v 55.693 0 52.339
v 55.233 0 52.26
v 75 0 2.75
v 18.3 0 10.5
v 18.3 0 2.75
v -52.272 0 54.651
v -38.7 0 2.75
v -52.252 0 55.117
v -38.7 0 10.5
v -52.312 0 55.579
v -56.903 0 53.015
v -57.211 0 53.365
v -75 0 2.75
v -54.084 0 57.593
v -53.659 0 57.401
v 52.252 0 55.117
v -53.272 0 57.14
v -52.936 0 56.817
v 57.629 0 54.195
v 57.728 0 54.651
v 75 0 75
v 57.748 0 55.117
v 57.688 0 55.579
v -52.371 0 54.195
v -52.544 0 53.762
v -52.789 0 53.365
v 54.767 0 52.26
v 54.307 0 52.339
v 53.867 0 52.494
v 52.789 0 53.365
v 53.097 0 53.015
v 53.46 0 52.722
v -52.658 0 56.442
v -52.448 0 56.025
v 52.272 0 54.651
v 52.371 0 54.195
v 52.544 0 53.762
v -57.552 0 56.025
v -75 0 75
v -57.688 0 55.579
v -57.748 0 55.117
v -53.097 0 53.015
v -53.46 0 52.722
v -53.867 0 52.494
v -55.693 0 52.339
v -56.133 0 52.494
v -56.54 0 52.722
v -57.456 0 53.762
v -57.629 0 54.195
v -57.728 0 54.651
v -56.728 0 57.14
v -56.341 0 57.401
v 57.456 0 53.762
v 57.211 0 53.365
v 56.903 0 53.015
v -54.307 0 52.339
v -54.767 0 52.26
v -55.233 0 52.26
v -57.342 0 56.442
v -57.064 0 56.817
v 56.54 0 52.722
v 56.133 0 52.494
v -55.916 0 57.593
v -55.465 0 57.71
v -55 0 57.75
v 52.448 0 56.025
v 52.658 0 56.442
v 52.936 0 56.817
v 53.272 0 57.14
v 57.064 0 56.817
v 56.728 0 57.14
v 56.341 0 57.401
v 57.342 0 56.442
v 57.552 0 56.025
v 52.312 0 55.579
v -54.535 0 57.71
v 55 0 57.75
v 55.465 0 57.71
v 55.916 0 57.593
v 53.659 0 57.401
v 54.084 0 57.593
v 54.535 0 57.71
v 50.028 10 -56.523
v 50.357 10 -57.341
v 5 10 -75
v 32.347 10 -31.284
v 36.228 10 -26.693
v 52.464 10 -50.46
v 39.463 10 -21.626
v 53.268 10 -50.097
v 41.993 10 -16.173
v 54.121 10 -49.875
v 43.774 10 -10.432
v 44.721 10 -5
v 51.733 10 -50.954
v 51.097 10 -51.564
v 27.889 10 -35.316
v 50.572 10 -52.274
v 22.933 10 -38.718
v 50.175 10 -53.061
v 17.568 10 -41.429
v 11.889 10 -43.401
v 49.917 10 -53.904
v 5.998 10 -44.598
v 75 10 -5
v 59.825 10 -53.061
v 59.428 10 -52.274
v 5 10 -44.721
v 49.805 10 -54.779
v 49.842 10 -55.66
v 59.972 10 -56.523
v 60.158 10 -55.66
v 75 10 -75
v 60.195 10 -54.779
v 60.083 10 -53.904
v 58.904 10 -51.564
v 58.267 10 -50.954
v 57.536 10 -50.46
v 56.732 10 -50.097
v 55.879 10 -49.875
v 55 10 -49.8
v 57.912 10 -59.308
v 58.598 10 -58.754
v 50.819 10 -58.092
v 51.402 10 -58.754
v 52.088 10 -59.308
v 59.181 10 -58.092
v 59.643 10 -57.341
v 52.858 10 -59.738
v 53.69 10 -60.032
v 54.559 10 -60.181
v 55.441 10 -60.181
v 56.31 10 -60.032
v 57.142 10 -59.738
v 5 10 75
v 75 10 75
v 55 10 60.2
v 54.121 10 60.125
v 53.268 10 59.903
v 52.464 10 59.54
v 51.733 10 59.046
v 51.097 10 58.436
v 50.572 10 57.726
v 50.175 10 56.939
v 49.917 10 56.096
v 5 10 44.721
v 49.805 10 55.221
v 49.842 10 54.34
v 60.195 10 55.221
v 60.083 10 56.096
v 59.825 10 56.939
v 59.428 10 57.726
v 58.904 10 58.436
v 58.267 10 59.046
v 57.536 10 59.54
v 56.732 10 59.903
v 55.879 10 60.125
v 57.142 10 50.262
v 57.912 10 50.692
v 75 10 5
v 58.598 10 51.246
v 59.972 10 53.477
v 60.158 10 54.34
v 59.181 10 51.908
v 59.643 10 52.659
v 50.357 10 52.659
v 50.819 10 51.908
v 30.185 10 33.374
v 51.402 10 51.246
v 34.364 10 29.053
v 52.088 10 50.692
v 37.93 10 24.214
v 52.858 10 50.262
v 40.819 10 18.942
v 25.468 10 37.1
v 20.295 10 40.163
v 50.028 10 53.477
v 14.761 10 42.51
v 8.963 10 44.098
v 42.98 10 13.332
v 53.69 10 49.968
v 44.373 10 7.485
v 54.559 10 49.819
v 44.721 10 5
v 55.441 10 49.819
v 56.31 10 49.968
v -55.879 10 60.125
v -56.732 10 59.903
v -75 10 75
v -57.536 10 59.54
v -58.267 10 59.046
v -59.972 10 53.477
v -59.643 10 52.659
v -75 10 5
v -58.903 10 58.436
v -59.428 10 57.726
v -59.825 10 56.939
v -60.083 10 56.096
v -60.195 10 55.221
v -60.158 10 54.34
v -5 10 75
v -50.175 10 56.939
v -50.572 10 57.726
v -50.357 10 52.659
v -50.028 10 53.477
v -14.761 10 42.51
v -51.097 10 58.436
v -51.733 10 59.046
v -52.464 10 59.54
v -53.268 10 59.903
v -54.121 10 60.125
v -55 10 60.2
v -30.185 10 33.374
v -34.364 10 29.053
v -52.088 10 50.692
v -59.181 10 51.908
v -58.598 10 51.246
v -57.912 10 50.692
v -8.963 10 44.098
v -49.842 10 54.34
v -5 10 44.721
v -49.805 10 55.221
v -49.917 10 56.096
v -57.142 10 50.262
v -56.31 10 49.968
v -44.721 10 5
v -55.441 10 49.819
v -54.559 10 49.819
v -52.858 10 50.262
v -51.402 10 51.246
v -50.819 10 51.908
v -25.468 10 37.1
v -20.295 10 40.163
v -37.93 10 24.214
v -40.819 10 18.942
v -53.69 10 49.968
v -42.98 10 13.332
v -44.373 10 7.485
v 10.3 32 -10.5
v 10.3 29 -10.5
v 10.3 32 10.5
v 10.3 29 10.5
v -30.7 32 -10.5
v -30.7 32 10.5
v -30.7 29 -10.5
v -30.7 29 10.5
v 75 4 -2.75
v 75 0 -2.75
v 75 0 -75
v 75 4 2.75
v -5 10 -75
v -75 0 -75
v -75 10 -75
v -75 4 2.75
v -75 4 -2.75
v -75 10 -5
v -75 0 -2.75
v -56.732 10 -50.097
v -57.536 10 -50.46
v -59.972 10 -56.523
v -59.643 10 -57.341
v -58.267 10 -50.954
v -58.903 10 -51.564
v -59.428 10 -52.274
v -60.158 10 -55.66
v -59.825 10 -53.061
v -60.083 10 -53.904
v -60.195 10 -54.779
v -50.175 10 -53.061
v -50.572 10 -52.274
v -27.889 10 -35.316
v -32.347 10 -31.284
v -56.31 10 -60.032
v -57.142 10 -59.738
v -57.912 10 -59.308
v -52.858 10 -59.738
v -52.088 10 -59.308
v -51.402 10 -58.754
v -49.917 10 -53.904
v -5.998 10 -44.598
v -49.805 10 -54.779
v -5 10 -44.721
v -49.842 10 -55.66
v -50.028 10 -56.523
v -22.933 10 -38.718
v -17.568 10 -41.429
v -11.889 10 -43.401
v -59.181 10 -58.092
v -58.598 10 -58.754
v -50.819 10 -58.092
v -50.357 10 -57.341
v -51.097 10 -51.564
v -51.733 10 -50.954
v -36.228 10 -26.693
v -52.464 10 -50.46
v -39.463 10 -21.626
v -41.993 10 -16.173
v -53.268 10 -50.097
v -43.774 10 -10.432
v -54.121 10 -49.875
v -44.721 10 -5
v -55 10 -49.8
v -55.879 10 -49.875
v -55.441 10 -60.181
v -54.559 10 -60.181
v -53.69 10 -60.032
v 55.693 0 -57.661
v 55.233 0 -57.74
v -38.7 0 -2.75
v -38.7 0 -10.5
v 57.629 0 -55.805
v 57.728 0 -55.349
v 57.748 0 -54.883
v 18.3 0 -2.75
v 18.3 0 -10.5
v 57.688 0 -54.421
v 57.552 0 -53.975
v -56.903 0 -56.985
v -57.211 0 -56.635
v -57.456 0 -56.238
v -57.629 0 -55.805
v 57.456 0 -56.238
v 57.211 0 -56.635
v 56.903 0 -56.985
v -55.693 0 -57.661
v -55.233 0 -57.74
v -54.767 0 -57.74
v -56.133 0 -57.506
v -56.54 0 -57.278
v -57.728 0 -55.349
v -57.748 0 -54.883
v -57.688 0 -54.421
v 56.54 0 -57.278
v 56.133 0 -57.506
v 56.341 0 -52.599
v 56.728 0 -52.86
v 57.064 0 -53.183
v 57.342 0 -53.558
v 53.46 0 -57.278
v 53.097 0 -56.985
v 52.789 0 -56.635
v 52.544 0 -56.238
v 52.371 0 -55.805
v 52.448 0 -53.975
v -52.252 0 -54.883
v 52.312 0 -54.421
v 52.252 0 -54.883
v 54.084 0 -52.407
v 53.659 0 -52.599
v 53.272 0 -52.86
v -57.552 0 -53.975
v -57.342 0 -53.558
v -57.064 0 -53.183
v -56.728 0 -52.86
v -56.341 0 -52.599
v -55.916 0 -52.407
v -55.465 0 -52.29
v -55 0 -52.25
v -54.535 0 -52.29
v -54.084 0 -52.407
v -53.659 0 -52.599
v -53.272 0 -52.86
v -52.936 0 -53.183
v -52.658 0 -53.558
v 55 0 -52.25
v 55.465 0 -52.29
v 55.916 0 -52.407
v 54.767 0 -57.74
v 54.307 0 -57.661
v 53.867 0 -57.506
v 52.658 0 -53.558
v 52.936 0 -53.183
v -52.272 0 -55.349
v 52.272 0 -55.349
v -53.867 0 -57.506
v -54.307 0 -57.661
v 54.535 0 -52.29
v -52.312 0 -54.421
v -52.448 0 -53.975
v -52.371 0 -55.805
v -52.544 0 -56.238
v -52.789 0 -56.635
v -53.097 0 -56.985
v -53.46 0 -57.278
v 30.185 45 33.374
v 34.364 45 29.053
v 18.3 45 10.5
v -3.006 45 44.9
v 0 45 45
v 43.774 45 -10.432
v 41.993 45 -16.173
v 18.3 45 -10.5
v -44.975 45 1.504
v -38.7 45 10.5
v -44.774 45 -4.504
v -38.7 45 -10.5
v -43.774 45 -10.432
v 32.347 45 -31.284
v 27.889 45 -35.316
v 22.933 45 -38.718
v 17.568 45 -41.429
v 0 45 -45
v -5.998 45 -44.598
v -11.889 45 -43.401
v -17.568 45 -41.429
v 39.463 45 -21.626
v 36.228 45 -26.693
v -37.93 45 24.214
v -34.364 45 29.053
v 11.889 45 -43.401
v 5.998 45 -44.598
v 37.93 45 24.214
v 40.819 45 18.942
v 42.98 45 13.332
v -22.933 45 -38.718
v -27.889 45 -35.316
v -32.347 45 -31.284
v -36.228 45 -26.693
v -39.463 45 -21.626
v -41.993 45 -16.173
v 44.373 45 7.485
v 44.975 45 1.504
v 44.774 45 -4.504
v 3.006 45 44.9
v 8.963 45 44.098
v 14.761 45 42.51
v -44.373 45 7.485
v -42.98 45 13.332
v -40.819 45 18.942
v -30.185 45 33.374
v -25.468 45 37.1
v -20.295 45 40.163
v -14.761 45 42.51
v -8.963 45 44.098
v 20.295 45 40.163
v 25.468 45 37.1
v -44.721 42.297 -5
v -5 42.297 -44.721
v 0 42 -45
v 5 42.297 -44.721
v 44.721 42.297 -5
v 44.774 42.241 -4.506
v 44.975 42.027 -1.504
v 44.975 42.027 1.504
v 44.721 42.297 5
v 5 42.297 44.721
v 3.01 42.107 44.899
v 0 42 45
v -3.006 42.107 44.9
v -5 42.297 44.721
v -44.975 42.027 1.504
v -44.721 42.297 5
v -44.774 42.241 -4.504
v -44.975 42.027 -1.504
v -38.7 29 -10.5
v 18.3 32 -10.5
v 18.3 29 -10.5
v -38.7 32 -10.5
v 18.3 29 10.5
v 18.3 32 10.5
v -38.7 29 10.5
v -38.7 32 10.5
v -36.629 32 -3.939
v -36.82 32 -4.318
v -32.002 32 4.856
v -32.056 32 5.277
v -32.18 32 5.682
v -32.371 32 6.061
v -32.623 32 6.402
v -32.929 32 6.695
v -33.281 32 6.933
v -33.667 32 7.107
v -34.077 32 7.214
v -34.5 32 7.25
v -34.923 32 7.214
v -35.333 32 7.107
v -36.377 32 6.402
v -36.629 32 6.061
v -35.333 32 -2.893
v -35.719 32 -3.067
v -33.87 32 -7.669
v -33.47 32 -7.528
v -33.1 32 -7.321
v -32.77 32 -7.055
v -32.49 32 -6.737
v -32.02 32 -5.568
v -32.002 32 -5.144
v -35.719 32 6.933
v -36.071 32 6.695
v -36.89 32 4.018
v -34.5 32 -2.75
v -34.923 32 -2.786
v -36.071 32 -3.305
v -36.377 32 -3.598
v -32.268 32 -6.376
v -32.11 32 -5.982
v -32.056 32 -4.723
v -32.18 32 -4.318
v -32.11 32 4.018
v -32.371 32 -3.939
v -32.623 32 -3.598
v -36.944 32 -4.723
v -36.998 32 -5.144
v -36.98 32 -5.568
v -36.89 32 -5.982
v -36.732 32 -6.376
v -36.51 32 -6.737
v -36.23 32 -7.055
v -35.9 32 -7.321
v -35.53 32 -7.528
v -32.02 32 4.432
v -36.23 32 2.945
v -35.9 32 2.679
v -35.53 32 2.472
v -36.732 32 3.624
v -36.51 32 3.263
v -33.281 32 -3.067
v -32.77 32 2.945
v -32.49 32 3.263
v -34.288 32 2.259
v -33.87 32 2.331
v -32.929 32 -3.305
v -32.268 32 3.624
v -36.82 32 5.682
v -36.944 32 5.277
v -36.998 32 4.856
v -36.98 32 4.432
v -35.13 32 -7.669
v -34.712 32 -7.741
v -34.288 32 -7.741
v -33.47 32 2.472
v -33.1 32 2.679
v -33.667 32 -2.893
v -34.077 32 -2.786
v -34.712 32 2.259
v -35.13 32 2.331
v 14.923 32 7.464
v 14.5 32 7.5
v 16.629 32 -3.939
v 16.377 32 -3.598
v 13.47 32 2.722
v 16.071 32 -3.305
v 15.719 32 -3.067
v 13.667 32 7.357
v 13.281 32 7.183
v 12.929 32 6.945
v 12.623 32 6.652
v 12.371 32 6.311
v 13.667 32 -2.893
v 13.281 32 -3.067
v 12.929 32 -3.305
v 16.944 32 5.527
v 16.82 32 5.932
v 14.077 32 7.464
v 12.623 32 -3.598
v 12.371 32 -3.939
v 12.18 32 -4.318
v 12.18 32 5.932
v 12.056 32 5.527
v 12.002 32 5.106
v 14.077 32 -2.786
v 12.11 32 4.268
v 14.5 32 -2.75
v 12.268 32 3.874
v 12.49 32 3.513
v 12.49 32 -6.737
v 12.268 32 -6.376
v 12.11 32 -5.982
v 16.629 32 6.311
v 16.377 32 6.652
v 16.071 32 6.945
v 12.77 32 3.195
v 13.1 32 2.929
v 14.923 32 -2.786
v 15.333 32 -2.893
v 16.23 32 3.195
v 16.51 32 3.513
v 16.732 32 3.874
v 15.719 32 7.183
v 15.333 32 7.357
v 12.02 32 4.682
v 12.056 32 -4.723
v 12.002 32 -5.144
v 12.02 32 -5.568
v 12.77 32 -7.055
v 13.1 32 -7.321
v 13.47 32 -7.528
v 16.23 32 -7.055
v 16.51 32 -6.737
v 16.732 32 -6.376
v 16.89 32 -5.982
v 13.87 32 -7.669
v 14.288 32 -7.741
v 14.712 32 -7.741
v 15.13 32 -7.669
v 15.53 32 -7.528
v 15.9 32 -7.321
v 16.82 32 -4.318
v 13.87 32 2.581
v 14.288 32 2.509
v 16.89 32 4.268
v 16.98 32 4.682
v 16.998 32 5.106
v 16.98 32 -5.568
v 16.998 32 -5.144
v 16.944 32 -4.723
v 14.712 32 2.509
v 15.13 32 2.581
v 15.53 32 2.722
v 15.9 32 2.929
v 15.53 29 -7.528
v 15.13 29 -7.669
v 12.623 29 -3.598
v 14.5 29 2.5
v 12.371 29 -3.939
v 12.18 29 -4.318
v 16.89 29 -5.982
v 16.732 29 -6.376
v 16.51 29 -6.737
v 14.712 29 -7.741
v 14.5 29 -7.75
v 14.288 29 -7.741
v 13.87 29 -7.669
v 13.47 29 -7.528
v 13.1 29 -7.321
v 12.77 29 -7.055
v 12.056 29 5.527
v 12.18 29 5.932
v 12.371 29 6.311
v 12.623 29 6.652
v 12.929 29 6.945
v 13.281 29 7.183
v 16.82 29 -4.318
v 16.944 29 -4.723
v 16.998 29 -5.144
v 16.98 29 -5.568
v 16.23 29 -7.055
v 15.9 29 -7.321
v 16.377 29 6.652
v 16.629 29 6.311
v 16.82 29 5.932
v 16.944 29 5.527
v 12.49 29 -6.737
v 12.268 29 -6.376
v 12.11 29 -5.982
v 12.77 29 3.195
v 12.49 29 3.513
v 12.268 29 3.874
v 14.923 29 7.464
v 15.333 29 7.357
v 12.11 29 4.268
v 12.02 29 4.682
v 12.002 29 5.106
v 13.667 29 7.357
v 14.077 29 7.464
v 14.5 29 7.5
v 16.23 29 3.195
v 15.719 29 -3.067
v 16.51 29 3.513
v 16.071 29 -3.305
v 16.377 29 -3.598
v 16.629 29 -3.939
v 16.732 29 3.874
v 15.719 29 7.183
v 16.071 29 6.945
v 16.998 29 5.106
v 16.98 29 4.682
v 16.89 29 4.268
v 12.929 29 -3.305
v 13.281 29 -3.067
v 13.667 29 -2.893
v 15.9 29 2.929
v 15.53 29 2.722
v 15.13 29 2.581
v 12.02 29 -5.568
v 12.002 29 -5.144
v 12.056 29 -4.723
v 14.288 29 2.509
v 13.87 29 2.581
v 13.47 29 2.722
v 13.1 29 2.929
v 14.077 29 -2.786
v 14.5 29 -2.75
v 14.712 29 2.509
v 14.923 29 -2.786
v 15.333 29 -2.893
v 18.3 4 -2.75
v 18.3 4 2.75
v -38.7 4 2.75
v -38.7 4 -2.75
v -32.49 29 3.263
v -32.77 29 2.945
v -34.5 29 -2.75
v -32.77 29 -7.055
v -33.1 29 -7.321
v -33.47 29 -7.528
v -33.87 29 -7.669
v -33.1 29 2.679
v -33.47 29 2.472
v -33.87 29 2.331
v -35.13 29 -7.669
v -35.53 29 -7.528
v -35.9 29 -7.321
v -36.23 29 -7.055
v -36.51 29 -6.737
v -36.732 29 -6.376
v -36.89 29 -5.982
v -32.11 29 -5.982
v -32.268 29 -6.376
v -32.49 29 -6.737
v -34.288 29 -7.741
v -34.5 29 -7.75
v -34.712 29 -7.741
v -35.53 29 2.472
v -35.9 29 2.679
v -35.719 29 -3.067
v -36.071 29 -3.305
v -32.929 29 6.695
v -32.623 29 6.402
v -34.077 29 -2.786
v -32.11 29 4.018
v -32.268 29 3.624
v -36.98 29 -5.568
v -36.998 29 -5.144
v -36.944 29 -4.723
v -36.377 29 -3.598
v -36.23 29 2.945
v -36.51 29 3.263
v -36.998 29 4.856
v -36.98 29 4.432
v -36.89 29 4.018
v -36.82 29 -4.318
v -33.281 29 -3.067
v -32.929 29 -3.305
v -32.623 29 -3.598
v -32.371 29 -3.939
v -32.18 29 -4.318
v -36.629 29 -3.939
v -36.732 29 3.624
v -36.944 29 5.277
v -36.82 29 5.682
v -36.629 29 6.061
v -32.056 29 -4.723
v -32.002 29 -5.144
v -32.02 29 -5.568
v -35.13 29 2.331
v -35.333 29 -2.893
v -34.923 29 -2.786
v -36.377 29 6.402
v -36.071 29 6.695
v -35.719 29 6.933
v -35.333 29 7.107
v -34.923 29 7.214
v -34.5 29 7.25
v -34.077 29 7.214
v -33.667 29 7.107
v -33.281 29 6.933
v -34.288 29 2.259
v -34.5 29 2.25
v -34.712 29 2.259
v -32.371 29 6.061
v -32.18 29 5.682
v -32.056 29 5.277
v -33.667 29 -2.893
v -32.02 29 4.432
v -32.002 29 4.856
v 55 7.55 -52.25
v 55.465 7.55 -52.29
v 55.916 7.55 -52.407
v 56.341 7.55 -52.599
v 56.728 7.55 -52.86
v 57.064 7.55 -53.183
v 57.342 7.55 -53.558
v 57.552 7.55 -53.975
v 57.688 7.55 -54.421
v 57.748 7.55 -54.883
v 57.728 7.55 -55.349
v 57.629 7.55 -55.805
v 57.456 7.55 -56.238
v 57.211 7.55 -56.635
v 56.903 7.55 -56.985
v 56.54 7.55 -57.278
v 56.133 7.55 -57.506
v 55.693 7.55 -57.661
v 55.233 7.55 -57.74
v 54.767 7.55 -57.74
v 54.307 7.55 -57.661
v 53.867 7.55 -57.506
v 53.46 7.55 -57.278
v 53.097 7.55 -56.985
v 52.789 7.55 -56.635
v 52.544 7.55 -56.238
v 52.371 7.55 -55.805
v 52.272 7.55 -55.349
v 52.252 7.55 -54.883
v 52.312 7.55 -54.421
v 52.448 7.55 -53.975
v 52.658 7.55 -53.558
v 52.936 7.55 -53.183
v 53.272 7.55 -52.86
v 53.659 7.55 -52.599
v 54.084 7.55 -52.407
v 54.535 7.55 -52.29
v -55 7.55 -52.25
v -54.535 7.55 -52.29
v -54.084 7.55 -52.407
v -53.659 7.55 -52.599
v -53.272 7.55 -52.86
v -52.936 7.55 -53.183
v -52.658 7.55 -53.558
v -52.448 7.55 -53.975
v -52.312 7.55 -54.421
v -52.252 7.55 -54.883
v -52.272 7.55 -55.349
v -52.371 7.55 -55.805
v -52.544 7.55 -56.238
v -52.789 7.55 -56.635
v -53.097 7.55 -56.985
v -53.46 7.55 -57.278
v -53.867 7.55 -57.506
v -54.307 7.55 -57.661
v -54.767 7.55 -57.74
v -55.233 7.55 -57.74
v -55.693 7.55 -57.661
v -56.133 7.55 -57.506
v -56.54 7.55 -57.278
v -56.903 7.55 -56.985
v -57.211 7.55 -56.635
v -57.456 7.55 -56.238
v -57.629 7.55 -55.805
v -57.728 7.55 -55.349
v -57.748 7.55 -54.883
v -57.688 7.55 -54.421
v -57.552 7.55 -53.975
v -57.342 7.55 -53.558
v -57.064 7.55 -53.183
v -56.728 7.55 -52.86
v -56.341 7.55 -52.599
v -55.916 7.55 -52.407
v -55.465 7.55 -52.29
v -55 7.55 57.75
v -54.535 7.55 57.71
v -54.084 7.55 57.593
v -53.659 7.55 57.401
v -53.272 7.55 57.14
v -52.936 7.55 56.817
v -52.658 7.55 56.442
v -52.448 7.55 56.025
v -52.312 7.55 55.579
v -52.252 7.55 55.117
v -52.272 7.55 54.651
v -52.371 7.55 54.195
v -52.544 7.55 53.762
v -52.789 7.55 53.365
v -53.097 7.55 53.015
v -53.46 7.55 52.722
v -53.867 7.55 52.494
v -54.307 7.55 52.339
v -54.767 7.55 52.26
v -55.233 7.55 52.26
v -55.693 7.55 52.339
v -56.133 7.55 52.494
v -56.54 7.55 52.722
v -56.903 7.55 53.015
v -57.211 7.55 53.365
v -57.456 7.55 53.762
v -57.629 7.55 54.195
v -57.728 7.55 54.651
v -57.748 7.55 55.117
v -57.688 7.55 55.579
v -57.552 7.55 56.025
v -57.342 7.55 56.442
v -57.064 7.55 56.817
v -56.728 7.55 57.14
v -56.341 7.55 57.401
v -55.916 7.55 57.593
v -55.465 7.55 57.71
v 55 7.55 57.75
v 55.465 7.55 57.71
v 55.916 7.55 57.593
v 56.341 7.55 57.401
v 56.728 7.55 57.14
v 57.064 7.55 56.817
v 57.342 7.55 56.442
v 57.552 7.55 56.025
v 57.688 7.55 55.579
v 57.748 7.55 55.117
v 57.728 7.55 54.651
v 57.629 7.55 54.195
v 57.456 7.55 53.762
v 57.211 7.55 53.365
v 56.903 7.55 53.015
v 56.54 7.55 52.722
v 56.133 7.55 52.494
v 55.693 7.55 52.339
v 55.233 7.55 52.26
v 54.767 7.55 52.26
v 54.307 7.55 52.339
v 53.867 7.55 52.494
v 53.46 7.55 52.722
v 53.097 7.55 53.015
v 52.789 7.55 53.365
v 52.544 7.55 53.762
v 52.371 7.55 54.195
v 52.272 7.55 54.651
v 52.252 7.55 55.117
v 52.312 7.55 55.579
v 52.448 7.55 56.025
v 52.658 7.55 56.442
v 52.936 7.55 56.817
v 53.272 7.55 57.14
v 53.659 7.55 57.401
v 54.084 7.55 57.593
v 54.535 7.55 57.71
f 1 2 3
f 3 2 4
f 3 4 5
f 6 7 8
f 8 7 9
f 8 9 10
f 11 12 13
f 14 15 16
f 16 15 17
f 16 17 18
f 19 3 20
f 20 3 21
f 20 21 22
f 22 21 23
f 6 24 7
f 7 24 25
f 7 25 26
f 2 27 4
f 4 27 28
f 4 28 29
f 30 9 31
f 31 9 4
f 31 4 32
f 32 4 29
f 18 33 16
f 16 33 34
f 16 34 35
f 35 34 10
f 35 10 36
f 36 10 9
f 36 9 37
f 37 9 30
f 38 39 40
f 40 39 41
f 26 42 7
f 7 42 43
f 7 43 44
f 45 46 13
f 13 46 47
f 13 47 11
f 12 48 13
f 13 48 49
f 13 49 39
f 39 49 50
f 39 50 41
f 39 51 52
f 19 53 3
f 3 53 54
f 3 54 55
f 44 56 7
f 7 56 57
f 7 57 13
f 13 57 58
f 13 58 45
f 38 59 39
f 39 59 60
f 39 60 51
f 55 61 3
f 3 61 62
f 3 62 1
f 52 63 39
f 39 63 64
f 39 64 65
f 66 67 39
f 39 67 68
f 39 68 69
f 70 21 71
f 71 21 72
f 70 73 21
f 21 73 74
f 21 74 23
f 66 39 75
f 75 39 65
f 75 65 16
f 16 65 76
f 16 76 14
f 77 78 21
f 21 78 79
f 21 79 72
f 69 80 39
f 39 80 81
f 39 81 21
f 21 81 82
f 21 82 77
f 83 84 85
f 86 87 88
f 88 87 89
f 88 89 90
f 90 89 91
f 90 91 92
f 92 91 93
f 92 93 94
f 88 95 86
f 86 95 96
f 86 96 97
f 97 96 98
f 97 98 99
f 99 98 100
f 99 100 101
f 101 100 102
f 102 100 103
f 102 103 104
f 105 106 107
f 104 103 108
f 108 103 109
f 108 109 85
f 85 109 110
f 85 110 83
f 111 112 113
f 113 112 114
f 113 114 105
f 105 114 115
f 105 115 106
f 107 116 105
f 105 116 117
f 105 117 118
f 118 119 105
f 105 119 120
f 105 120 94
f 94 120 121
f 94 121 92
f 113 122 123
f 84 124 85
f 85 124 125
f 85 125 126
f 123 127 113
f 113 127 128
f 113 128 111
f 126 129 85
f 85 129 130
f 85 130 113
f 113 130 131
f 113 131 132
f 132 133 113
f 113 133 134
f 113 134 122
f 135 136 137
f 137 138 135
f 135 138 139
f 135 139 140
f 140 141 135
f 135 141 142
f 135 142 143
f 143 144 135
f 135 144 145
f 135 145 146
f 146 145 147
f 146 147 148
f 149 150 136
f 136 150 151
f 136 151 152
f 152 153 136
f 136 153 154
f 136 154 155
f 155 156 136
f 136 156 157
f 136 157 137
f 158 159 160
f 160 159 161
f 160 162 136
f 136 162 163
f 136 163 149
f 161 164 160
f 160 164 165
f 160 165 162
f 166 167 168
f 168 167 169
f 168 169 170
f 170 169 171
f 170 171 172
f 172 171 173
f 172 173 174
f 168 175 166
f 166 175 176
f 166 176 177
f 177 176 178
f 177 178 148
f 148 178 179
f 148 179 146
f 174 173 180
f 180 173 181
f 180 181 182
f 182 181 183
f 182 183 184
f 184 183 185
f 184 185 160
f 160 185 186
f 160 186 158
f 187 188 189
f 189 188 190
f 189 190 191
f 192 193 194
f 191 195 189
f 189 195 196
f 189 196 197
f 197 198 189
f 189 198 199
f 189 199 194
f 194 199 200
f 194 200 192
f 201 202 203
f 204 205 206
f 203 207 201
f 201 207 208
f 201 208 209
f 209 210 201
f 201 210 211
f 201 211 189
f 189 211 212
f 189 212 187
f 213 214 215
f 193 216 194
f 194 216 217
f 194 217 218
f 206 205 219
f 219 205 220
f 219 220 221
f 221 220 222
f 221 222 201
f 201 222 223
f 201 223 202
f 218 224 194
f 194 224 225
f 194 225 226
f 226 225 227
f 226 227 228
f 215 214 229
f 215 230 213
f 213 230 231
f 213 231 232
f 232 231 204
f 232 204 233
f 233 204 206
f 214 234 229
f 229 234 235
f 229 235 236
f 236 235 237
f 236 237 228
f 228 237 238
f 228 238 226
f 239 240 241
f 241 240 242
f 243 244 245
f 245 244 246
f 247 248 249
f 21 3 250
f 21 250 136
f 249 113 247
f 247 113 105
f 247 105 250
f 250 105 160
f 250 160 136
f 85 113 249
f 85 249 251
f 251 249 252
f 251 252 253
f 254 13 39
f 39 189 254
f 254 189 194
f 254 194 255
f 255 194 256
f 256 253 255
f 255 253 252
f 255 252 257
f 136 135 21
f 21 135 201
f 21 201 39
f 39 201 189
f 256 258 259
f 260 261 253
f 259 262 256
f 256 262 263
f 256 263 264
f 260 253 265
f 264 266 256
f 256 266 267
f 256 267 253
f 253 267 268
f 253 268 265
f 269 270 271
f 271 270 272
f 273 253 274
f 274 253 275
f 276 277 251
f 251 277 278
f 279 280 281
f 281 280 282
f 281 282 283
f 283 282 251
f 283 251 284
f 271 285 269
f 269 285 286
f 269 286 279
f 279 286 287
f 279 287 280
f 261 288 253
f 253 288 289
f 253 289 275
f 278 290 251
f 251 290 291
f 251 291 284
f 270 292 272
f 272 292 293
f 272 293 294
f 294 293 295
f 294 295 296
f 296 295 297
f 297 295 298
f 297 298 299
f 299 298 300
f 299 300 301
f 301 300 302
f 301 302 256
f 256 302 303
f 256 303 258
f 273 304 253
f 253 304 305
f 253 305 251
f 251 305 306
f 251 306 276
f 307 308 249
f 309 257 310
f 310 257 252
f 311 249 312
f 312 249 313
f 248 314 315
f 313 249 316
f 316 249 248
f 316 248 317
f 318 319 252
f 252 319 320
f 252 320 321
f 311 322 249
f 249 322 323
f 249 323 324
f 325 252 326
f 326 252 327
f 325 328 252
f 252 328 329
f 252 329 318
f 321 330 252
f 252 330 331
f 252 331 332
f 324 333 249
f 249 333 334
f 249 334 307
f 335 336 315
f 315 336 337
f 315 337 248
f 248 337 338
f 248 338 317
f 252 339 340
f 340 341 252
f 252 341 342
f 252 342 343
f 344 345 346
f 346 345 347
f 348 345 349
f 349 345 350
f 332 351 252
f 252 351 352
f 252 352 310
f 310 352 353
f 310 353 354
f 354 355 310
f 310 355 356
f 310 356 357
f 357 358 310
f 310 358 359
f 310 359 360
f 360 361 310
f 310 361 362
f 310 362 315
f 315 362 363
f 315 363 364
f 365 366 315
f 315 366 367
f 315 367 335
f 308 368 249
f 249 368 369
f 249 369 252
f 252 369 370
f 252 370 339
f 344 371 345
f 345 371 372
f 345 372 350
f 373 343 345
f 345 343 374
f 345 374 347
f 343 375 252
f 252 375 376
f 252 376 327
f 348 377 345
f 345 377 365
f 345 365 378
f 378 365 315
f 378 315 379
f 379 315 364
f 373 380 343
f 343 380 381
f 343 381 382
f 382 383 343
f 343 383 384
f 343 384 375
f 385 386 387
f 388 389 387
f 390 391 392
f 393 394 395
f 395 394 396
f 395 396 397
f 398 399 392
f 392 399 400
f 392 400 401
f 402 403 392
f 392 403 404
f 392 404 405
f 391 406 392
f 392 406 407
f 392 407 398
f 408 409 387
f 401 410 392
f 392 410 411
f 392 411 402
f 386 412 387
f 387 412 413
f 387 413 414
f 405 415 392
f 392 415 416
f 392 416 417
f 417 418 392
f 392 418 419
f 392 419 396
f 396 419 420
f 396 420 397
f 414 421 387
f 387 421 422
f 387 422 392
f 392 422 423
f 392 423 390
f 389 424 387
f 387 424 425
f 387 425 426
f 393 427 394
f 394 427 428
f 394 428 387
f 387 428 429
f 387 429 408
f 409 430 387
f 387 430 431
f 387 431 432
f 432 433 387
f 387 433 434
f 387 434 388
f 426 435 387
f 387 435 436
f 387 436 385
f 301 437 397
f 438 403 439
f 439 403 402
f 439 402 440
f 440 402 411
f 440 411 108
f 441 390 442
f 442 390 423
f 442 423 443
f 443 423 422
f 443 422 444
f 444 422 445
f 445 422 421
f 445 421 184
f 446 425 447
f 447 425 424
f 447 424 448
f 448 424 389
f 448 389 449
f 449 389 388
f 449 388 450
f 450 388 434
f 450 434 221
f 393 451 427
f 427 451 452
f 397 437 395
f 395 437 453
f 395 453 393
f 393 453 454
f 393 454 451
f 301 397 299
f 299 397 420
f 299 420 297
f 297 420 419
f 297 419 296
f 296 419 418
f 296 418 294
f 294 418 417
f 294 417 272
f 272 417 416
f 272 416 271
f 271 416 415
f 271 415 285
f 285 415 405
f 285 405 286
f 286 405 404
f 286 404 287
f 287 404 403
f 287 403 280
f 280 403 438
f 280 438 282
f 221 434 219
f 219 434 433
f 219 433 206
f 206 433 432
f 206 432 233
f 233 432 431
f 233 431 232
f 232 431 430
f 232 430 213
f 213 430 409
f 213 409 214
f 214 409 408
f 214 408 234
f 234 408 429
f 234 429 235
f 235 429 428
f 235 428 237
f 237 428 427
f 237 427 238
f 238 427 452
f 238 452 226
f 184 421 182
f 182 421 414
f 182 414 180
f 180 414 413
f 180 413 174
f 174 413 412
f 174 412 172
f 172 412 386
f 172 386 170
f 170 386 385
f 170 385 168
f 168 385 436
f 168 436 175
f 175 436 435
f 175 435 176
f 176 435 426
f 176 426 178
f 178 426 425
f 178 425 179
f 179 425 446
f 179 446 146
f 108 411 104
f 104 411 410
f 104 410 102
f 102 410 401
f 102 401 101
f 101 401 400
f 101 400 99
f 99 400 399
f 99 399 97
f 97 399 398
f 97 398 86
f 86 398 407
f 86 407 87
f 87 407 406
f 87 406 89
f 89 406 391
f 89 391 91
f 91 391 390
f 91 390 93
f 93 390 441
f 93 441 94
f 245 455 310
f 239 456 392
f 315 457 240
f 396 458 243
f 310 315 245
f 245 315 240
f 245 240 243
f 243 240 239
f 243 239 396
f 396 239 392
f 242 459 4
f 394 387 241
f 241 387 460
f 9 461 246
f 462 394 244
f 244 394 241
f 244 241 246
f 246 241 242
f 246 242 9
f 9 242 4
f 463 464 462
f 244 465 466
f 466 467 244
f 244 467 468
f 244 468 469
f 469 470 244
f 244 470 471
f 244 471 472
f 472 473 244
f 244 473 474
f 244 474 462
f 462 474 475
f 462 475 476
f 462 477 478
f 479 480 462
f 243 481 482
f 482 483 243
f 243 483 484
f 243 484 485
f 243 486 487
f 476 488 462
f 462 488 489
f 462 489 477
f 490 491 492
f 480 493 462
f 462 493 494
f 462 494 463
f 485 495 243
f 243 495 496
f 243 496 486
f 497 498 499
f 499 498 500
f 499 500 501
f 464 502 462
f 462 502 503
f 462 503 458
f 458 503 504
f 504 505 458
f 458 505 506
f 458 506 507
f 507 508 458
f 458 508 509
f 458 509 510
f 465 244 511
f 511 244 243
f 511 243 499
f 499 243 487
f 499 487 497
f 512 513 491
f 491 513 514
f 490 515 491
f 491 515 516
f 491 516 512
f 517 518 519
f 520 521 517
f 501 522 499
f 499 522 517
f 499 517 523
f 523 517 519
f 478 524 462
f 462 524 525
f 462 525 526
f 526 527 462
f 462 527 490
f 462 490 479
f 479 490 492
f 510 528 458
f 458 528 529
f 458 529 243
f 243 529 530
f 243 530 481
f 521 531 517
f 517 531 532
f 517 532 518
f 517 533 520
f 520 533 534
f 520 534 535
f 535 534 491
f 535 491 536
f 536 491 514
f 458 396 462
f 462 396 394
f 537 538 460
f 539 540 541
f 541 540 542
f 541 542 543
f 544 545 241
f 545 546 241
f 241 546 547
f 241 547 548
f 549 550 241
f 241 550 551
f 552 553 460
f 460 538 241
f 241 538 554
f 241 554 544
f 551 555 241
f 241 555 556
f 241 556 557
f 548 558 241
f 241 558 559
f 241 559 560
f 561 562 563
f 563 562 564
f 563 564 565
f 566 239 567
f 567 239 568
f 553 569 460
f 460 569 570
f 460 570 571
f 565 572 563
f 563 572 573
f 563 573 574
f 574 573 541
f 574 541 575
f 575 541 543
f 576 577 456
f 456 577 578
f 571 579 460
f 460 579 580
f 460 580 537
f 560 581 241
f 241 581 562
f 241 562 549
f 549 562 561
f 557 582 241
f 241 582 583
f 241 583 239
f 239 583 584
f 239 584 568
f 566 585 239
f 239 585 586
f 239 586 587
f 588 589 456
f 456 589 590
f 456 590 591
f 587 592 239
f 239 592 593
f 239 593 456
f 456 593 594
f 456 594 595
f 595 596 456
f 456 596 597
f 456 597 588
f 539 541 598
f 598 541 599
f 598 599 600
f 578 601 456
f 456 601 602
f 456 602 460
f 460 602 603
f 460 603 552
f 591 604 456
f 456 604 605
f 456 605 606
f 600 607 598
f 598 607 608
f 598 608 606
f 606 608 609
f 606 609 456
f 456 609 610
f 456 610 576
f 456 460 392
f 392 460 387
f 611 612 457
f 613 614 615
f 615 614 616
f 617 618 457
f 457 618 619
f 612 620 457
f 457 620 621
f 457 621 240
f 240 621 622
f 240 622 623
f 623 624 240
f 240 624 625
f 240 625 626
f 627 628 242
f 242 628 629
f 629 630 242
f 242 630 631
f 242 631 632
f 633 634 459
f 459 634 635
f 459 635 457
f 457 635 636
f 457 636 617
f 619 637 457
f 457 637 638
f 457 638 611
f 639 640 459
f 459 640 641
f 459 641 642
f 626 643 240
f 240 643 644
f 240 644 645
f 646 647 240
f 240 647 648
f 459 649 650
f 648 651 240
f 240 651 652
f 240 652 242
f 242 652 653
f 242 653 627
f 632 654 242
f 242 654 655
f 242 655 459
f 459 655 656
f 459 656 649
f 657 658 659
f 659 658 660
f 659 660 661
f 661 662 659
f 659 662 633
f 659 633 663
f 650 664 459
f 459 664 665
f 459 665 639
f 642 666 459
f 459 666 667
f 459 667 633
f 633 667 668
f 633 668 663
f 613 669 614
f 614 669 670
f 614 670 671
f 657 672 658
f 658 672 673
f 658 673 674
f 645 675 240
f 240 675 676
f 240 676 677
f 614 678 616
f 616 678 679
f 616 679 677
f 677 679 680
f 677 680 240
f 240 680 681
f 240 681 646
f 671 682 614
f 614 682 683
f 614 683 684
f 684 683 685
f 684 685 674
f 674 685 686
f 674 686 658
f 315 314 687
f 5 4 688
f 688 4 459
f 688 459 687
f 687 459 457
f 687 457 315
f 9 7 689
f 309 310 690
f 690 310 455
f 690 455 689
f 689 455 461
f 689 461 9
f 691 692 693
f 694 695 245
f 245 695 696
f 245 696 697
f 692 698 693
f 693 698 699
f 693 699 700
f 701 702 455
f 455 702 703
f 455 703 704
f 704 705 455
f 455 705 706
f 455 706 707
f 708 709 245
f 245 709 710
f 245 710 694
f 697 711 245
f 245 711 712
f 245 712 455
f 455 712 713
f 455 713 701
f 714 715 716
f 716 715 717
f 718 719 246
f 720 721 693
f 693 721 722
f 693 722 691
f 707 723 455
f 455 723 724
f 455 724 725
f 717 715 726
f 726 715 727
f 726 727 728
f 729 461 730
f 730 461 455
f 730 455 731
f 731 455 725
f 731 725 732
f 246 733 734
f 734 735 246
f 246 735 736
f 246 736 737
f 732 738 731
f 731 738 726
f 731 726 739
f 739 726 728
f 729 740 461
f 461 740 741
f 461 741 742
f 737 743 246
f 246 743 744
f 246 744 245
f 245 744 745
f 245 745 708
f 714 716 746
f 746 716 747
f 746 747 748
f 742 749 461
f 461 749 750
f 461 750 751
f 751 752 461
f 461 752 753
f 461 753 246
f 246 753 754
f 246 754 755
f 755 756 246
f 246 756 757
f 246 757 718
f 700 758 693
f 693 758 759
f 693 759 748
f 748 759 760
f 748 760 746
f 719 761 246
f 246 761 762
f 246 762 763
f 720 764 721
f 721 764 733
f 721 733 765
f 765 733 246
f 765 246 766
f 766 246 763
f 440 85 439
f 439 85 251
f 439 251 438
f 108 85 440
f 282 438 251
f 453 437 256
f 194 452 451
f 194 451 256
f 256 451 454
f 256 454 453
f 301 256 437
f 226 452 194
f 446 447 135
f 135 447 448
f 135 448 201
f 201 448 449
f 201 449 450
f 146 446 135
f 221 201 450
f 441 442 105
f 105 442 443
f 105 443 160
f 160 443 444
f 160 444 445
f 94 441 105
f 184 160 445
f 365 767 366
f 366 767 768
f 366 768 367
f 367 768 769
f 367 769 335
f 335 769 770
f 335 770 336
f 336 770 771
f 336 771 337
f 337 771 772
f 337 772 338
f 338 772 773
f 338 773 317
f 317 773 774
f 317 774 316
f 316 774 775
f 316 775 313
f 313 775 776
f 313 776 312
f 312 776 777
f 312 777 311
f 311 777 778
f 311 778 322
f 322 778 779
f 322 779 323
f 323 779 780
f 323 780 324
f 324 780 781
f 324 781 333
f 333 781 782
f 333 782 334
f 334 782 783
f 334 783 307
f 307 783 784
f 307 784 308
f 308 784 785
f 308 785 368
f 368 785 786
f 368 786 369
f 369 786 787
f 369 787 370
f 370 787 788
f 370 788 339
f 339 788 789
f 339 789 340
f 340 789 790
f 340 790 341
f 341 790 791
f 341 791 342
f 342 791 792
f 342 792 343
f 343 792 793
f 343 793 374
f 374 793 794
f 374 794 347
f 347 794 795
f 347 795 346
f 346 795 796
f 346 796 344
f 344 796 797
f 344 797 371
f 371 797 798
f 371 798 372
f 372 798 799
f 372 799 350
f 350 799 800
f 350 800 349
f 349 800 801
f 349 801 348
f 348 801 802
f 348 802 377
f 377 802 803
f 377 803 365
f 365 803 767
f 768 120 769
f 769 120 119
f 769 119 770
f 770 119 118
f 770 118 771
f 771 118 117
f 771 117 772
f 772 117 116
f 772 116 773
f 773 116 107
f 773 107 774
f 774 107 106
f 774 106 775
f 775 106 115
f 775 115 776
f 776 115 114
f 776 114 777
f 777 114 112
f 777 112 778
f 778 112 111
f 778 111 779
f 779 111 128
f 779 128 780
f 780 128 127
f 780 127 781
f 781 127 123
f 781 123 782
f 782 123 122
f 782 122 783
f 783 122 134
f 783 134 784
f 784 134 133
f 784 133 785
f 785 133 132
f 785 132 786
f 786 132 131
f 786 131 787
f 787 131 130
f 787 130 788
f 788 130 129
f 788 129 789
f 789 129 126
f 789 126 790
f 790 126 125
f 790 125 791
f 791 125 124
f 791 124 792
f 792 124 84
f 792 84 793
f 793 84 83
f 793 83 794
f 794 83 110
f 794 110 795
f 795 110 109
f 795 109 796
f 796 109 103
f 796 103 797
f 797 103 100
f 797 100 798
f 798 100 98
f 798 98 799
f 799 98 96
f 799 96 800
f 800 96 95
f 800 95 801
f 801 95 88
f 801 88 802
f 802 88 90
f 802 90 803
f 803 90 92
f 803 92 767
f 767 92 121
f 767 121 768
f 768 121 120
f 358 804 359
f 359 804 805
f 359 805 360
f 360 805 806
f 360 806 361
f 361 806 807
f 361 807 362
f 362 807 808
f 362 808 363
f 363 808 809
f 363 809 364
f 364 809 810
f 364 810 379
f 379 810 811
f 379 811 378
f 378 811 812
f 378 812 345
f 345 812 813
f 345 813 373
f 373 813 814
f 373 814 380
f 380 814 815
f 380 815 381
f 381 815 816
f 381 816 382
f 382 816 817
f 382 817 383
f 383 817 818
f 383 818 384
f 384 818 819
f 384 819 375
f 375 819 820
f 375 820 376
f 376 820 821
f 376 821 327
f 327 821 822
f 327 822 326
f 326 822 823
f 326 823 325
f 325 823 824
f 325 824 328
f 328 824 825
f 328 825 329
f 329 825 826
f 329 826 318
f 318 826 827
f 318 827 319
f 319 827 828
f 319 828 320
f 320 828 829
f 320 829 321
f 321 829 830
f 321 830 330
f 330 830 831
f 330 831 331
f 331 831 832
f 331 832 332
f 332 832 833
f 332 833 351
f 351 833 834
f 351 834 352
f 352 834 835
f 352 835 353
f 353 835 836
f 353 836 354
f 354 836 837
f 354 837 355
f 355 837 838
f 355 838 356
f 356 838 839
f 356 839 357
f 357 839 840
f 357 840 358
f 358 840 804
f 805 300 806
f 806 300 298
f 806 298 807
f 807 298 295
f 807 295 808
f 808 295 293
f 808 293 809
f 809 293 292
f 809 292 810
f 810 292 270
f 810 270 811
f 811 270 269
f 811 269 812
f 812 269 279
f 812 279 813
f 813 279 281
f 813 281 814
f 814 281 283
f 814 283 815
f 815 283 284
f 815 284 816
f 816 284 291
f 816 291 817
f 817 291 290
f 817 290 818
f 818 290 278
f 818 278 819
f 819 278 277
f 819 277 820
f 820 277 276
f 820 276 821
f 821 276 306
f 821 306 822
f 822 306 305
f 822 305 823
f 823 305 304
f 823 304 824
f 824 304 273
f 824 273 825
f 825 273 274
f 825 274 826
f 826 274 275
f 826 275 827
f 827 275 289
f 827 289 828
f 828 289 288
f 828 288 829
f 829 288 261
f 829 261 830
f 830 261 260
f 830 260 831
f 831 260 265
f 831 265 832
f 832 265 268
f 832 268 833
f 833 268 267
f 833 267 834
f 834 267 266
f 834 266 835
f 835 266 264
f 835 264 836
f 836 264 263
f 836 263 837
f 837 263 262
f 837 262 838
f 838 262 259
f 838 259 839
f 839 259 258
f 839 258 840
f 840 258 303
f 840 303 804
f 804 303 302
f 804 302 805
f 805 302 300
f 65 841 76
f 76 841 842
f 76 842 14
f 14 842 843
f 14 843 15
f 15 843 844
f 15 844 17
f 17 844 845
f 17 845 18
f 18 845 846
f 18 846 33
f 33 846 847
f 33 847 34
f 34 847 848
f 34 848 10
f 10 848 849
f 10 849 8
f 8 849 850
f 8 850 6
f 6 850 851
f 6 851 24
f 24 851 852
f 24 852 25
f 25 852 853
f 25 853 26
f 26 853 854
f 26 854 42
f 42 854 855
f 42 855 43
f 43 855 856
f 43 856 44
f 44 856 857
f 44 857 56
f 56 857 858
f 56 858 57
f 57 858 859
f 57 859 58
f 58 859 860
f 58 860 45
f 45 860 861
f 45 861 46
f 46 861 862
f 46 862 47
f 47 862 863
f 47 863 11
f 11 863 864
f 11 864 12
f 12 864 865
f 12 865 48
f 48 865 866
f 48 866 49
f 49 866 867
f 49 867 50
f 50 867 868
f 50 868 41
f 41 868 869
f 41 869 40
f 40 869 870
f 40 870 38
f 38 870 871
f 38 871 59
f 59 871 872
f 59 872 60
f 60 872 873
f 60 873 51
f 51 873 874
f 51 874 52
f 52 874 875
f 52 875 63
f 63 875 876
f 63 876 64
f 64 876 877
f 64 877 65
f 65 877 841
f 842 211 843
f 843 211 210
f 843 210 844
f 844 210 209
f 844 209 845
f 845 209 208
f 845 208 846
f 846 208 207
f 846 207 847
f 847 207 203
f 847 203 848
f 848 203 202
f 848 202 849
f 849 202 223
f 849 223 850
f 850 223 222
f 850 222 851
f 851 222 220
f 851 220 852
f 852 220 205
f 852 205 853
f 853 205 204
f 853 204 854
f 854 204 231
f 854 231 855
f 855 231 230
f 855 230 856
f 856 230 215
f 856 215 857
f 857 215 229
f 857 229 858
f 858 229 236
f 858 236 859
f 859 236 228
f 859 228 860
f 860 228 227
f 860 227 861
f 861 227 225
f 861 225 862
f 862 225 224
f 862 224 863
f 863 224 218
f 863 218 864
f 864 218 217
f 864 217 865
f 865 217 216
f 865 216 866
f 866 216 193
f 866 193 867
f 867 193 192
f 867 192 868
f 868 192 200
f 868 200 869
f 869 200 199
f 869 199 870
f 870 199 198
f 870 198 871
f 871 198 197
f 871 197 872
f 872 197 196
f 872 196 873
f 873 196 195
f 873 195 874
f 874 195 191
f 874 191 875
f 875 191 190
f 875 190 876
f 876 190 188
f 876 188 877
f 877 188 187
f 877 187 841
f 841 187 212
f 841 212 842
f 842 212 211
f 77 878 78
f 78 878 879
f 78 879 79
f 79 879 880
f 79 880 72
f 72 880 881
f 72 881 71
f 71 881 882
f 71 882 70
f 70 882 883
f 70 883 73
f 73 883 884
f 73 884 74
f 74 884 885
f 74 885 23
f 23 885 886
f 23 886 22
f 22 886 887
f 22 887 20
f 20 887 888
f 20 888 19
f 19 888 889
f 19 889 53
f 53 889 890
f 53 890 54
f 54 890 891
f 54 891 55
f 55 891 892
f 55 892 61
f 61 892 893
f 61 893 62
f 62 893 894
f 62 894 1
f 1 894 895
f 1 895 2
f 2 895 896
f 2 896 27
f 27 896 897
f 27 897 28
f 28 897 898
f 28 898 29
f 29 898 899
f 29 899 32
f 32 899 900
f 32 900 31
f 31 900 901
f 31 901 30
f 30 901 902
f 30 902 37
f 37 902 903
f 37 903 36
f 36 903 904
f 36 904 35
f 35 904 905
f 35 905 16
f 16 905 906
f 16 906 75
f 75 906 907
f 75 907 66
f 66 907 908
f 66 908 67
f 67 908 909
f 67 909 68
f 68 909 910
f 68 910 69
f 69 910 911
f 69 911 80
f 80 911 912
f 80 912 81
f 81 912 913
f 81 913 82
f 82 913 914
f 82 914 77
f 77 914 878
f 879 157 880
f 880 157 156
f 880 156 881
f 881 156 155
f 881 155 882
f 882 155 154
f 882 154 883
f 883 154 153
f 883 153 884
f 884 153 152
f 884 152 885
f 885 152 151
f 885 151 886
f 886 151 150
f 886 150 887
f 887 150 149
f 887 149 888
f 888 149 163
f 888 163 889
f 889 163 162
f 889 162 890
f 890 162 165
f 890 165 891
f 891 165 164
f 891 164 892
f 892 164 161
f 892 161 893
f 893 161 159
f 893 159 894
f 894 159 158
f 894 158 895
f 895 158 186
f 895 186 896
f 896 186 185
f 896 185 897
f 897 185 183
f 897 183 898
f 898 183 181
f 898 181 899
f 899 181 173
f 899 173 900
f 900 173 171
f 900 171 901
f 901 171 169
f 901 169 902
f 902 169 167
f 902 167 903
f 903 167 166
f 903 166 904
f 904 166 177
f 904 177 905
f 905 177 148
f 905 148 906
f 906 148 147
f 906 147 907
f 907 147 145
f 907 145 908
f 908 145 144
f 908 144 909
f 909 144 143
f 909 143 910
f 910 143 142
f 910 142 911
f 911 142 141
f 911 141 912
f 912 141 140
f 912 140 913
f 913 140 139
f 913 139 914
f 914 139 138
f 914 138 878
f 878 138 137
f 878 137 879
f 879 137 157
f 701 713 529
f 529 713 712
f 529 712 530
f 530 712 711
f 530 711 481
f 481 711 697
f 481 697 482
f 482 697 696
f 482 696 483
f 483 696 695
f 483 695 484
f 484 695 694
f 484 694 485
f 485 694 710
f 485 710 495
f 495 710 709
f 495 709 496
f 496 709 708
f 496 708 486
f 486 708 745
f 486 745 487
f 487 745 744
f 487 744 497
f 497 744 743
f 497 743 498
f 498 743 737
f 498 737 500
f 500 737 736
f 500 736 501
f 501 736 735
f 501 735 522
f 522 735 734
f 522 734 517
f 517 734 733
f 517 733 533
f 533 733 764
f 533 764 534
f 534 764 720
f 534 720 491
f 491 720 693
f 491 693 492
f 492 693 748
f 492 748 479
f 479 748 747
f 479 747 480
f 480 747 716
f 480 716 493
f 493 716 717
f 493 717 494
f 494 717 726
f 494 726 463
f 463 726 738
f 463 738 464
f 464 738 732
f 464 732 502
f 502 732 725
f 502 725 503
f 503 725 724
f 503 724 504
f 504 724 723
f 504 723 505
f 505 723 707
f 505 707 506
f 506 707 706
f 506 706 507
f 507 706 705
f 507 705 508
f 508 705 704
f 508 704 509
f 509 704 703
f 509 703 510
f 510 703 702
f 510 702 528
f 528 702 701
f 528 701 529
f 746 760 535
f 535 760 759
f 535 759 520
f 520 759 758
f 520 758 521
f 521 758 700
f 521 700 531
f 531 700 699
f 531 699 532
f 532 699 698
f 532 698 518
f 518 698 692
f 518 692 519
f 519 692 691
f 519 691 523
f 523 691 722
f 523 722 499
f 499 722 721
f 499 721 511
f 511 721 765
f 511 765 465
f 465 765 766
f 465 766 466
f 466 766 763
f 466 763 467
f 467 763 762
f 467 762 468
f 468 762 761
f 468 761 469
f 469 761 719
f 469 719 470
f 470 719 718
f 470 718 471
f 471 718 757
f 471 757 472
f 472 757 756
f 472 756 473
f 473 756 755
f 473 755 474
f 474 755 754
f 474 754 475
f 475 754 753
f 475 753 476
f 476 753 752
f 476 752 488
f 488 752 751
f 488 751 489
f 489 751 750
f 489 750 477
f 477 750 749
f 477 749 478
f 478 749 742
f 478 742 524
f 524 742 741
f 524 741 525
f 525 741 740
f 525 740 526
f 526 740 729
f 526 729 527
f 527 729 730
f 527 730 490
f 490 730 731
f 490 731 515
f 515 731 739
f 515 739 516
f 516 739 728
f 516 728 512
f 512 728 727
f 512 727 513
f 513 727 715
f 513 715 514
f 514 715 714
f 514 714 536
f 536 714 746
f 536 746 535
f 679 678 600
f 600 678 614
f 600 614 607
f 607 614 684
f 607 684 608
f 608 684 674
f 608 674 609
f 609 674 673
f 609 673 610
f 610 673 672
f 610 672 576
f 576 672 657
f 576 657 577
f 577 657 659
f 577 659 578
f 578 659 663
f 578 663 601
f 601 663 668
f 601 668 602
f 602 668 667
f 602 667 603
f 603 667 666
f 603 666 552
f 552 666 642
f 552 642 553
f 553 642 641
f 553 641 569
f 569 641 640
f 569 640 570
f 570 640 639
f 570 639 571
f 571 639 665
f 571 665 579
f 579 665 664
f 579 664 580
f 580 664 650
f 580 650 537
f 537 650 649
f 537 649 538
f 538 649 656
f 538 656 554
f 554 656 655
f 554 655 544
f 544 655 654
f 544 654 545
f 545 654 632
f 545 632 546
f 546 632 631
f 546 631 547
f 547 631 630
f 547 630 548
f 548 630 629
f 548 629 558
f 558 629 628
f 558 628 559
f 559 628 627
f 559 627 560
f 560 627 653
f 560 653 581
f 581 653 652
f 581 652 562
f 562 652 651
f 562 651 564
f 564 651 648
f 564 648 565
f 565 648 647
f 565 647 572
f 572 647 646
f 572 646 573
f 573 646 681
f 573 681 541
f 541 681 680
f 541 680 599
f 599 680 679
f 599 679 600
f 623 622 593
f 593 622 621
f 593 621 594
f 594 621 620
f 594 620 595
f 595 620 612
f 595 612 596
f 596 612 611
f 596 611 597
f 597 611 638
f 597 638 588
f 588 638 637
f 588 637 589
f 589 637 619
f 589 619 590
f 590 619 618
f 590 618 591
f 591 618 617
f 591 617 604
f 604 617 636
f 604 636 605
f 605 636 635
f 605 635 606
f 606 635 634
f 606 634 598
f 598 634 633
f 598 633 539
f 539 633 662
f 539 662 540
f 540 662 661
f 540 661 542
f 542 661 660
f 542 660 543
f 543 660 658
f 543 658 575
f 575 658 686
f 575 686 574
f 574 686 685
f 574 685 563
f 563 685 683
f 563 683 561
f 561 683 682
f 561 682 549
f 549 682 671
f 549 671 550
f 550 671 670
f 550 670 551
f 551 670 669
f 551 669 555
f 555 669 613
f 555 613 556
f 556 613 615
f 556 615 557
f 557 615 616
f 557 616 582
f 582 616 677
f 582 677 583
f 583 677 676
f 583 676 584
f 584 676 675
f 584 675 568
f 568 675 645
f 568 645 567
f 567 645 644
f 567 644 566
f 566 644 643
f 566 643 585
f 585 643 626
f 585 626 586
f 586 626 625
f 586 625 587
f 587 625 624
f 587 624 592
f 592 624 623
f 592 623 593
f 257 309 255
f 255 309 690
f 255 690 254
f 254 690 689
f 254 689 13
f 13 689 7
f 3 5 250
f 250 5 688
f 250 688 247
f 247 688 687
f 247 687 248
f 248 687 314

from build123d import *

# Parameters (mm, degrees)
SKETCH1_W                                           = 150
SKETCH1_H                                           = 150
BOSS_EXTRUDE1_DEPTH                                 = 10
SKETCH2_R                                           = 45
SKETCH2_W                                           = 41
SKETCH2_H                                           = 21
BOSS_EXTRUDE2_DEPTH                                 = 35
SKETCH3_W                                           = 57
SKETCH3_H                                           = 21
CUT_EXTRUDE1_DEPTH                                  = 13
SKETCH5_W                                           = 57
SKETCH5_H                                           = 21
CUT_EXTRUDE3_DEPTH                                  = 29
RIB5_REACH                                          = 117.217
SKETCH6_WALL_W                                      = 276.297796834
SKETCH6_WALL_H                                      = 10
CIRPATTERN1_COUNT                                   = 4
CSK_FOR_M5_COUNTERSUNK_FLAT_HEAD_SCREW1_D           = 5.5
CSK_FOR_M5_COUNTERSUNK_FLAT_HEAD_SCREW1_CSINK_D     = 10.4
CSK_FOR_M5_COUNTERSUNK_FLAT_HEAD_SCREW1_CSINK_ANGLE = 90
SKETCH12_R                                          = 2.5
CUT_EXTRUDE4_DEPTH                                  = 10
CUT_EXTRUDE5_DEPTH                                  = 144.449259322
CUT_EXTRUDE5_DEPTH_BACK                             = 144.449259322
SKETCH13_W                                          = 5.5
SKETCH13_H                                          = 4


with BuildPart() as part:
    # Sketch1 → Boss-Extrude1 (new body)
    with BuildSketch(Plane(origin=(0, 0, 0), x_dir=(1, 0, 0), z_dir=(0, 1, 0))):
        Rectangle(SKETCH1_W, SKETCH1_H)
    extrude(amount=BOSS_EXTRUDE1_DEPTH)

    # Sketch2 → Boss-Extrude2 (add)
    with BuildSketch(Plane(origin=(0, 10, 0), x_dir=(1, 0, 0), z_dir=(0, 1, 0))):
        with Locations(Location((0, 0, 0), (0, 0, 270))):
            Circle(SKETCH2_R)
        with Locations((-10.2, 0)):
            Rectangle(SKETCH2_W, SKETCH2_H, mode=Mode.SUBTRACT)
    extrude(amount=BOSS_EXTRUDE2_DEPTH)

    # Sketch3 → Cut-Extrude1 (cut)
    with BuildSketch(Plane(origin=(0, 45, 0), x_dir=(1, 0, 0), z_dir=(0, 1, 0))):
        with Locations((-10.2, 0)):
            Rectangle(SKETCH3_W, SKETCH3_H)
    extrude(amount=-CUT_EXTRUDE1_DEPTH, mode=Mode.SUBTRACT)

    # Sketch5 → Cut-Extrude3 (cut)
    with BuildSketch(Plane.XZ):
        with Locations((-10.2, 0)):
            Rectangle(SKETCH5_W, SKETCH5_H)
    extrude(amount=-CUT_EXTRUDE3_DEPTH, mode=Mode.SUBTRACT)

    # Sketch6 wall → Rib5 (add, up to next)
    with BuildSketch(Plane(origin=(0, 26, -60), x_dir=(0, -0.72953720414, -0.683941128881), z_dir=(0, 0.683941128881, -0.72953720414)), mode=Mode.PRIVATE) as rib5_sk1:
        Rectangle(SKETCH6_WALL_W, SKETCH6_WALL_H)
    rib5_tool1 = extrude(rib5_sk1.sketch, amount=-RIB5_REACH, mode=Mode.PRIVATE) - part.part
    rib5 = rib5_tool1.solids().sort_by_distance((0, 26, -60))[0]
    add(rib5)

    # CirPattern1: Rib5 ×4 about axis
    cirpattern1_axis = Axis((0, 0, 0), (0, 1, 0))
    for i in range(1, CIRPATTERN1_COUNT):
        add(rib5.rotate(cirpattern1_axis, i * 360 / CIRPATTERN1_COUNT))

    # CSK for M5 Countersunk Flat Head Screw1 (through all)
    with Locations(Plane(origin=(0, 10, 0), x_dir=(1, 0, 0), z_dir=(0, 1, 0))):
        with Locations((55, -55), (-55, -55), (-55, 55), (55, 55)):
            CounterSinkHole(CSK_FOR_M5_COUNTERSUNK_FLAT_HEAD_SCREW1_D / 2, CSK_FOR_M5_COUNTERSUNK_FLAT_HEAD_SCREW1_CSINK_D / 2, counter_sink_angle=CSK_FOR_M5_COUNTERSUNK_FLAT_HEAD_SCREW1_CSINK_ANGLE)

    # Sketch12 → Cut-Extrude4 (cut)
    with BuildSketch(Plane(origin=(0, 32, 0), x_dir=(1, 0, 0), z_dir=(0, 1, 0))):
        with Locations(Location((-34.5, 5.25, 0), (0, 0, 270))):
            Circle(SKETCH12_R)
        with Locations(Location((-34.5, -4.75, 0), (0, 0, 270))):
            Circle(SKETCH12_R)
        with Locations(Location((14.5, 5.25, 0), (0, 0, 270))):
            Circle(SKETCH12_R)
        with Locations(Location((14.5, -5, 0), (0, 0, 270))):
            Circle(SKETCH12_R)
    extrude(amount=-CUT_EXTRUDE4_DEPTH, mode=Mode.SUBTRACT)

    # Sketch13 → Cut-Extrude5 (cut, two sides: drawn at the far end of the back side and taken through both)
    with BuildSketch(Plane(origin=(-38.7, 0, 0), x_dir=(0, 0, -1), z_dir=(1, 0, 0)).offset(-CUT_EXTRUDE5_DEPTH_BACK)):
        with Locations((0, 2)):
            Rectangle(SKETCH13_W, SKETCH13_H)
    extrude(amount=CUT_EXTRUDE5_DEPTH + CUT_EXTRUDE5_DEPTH_BACK, mode=Mode.SUBTRACT)


solid = part.part
